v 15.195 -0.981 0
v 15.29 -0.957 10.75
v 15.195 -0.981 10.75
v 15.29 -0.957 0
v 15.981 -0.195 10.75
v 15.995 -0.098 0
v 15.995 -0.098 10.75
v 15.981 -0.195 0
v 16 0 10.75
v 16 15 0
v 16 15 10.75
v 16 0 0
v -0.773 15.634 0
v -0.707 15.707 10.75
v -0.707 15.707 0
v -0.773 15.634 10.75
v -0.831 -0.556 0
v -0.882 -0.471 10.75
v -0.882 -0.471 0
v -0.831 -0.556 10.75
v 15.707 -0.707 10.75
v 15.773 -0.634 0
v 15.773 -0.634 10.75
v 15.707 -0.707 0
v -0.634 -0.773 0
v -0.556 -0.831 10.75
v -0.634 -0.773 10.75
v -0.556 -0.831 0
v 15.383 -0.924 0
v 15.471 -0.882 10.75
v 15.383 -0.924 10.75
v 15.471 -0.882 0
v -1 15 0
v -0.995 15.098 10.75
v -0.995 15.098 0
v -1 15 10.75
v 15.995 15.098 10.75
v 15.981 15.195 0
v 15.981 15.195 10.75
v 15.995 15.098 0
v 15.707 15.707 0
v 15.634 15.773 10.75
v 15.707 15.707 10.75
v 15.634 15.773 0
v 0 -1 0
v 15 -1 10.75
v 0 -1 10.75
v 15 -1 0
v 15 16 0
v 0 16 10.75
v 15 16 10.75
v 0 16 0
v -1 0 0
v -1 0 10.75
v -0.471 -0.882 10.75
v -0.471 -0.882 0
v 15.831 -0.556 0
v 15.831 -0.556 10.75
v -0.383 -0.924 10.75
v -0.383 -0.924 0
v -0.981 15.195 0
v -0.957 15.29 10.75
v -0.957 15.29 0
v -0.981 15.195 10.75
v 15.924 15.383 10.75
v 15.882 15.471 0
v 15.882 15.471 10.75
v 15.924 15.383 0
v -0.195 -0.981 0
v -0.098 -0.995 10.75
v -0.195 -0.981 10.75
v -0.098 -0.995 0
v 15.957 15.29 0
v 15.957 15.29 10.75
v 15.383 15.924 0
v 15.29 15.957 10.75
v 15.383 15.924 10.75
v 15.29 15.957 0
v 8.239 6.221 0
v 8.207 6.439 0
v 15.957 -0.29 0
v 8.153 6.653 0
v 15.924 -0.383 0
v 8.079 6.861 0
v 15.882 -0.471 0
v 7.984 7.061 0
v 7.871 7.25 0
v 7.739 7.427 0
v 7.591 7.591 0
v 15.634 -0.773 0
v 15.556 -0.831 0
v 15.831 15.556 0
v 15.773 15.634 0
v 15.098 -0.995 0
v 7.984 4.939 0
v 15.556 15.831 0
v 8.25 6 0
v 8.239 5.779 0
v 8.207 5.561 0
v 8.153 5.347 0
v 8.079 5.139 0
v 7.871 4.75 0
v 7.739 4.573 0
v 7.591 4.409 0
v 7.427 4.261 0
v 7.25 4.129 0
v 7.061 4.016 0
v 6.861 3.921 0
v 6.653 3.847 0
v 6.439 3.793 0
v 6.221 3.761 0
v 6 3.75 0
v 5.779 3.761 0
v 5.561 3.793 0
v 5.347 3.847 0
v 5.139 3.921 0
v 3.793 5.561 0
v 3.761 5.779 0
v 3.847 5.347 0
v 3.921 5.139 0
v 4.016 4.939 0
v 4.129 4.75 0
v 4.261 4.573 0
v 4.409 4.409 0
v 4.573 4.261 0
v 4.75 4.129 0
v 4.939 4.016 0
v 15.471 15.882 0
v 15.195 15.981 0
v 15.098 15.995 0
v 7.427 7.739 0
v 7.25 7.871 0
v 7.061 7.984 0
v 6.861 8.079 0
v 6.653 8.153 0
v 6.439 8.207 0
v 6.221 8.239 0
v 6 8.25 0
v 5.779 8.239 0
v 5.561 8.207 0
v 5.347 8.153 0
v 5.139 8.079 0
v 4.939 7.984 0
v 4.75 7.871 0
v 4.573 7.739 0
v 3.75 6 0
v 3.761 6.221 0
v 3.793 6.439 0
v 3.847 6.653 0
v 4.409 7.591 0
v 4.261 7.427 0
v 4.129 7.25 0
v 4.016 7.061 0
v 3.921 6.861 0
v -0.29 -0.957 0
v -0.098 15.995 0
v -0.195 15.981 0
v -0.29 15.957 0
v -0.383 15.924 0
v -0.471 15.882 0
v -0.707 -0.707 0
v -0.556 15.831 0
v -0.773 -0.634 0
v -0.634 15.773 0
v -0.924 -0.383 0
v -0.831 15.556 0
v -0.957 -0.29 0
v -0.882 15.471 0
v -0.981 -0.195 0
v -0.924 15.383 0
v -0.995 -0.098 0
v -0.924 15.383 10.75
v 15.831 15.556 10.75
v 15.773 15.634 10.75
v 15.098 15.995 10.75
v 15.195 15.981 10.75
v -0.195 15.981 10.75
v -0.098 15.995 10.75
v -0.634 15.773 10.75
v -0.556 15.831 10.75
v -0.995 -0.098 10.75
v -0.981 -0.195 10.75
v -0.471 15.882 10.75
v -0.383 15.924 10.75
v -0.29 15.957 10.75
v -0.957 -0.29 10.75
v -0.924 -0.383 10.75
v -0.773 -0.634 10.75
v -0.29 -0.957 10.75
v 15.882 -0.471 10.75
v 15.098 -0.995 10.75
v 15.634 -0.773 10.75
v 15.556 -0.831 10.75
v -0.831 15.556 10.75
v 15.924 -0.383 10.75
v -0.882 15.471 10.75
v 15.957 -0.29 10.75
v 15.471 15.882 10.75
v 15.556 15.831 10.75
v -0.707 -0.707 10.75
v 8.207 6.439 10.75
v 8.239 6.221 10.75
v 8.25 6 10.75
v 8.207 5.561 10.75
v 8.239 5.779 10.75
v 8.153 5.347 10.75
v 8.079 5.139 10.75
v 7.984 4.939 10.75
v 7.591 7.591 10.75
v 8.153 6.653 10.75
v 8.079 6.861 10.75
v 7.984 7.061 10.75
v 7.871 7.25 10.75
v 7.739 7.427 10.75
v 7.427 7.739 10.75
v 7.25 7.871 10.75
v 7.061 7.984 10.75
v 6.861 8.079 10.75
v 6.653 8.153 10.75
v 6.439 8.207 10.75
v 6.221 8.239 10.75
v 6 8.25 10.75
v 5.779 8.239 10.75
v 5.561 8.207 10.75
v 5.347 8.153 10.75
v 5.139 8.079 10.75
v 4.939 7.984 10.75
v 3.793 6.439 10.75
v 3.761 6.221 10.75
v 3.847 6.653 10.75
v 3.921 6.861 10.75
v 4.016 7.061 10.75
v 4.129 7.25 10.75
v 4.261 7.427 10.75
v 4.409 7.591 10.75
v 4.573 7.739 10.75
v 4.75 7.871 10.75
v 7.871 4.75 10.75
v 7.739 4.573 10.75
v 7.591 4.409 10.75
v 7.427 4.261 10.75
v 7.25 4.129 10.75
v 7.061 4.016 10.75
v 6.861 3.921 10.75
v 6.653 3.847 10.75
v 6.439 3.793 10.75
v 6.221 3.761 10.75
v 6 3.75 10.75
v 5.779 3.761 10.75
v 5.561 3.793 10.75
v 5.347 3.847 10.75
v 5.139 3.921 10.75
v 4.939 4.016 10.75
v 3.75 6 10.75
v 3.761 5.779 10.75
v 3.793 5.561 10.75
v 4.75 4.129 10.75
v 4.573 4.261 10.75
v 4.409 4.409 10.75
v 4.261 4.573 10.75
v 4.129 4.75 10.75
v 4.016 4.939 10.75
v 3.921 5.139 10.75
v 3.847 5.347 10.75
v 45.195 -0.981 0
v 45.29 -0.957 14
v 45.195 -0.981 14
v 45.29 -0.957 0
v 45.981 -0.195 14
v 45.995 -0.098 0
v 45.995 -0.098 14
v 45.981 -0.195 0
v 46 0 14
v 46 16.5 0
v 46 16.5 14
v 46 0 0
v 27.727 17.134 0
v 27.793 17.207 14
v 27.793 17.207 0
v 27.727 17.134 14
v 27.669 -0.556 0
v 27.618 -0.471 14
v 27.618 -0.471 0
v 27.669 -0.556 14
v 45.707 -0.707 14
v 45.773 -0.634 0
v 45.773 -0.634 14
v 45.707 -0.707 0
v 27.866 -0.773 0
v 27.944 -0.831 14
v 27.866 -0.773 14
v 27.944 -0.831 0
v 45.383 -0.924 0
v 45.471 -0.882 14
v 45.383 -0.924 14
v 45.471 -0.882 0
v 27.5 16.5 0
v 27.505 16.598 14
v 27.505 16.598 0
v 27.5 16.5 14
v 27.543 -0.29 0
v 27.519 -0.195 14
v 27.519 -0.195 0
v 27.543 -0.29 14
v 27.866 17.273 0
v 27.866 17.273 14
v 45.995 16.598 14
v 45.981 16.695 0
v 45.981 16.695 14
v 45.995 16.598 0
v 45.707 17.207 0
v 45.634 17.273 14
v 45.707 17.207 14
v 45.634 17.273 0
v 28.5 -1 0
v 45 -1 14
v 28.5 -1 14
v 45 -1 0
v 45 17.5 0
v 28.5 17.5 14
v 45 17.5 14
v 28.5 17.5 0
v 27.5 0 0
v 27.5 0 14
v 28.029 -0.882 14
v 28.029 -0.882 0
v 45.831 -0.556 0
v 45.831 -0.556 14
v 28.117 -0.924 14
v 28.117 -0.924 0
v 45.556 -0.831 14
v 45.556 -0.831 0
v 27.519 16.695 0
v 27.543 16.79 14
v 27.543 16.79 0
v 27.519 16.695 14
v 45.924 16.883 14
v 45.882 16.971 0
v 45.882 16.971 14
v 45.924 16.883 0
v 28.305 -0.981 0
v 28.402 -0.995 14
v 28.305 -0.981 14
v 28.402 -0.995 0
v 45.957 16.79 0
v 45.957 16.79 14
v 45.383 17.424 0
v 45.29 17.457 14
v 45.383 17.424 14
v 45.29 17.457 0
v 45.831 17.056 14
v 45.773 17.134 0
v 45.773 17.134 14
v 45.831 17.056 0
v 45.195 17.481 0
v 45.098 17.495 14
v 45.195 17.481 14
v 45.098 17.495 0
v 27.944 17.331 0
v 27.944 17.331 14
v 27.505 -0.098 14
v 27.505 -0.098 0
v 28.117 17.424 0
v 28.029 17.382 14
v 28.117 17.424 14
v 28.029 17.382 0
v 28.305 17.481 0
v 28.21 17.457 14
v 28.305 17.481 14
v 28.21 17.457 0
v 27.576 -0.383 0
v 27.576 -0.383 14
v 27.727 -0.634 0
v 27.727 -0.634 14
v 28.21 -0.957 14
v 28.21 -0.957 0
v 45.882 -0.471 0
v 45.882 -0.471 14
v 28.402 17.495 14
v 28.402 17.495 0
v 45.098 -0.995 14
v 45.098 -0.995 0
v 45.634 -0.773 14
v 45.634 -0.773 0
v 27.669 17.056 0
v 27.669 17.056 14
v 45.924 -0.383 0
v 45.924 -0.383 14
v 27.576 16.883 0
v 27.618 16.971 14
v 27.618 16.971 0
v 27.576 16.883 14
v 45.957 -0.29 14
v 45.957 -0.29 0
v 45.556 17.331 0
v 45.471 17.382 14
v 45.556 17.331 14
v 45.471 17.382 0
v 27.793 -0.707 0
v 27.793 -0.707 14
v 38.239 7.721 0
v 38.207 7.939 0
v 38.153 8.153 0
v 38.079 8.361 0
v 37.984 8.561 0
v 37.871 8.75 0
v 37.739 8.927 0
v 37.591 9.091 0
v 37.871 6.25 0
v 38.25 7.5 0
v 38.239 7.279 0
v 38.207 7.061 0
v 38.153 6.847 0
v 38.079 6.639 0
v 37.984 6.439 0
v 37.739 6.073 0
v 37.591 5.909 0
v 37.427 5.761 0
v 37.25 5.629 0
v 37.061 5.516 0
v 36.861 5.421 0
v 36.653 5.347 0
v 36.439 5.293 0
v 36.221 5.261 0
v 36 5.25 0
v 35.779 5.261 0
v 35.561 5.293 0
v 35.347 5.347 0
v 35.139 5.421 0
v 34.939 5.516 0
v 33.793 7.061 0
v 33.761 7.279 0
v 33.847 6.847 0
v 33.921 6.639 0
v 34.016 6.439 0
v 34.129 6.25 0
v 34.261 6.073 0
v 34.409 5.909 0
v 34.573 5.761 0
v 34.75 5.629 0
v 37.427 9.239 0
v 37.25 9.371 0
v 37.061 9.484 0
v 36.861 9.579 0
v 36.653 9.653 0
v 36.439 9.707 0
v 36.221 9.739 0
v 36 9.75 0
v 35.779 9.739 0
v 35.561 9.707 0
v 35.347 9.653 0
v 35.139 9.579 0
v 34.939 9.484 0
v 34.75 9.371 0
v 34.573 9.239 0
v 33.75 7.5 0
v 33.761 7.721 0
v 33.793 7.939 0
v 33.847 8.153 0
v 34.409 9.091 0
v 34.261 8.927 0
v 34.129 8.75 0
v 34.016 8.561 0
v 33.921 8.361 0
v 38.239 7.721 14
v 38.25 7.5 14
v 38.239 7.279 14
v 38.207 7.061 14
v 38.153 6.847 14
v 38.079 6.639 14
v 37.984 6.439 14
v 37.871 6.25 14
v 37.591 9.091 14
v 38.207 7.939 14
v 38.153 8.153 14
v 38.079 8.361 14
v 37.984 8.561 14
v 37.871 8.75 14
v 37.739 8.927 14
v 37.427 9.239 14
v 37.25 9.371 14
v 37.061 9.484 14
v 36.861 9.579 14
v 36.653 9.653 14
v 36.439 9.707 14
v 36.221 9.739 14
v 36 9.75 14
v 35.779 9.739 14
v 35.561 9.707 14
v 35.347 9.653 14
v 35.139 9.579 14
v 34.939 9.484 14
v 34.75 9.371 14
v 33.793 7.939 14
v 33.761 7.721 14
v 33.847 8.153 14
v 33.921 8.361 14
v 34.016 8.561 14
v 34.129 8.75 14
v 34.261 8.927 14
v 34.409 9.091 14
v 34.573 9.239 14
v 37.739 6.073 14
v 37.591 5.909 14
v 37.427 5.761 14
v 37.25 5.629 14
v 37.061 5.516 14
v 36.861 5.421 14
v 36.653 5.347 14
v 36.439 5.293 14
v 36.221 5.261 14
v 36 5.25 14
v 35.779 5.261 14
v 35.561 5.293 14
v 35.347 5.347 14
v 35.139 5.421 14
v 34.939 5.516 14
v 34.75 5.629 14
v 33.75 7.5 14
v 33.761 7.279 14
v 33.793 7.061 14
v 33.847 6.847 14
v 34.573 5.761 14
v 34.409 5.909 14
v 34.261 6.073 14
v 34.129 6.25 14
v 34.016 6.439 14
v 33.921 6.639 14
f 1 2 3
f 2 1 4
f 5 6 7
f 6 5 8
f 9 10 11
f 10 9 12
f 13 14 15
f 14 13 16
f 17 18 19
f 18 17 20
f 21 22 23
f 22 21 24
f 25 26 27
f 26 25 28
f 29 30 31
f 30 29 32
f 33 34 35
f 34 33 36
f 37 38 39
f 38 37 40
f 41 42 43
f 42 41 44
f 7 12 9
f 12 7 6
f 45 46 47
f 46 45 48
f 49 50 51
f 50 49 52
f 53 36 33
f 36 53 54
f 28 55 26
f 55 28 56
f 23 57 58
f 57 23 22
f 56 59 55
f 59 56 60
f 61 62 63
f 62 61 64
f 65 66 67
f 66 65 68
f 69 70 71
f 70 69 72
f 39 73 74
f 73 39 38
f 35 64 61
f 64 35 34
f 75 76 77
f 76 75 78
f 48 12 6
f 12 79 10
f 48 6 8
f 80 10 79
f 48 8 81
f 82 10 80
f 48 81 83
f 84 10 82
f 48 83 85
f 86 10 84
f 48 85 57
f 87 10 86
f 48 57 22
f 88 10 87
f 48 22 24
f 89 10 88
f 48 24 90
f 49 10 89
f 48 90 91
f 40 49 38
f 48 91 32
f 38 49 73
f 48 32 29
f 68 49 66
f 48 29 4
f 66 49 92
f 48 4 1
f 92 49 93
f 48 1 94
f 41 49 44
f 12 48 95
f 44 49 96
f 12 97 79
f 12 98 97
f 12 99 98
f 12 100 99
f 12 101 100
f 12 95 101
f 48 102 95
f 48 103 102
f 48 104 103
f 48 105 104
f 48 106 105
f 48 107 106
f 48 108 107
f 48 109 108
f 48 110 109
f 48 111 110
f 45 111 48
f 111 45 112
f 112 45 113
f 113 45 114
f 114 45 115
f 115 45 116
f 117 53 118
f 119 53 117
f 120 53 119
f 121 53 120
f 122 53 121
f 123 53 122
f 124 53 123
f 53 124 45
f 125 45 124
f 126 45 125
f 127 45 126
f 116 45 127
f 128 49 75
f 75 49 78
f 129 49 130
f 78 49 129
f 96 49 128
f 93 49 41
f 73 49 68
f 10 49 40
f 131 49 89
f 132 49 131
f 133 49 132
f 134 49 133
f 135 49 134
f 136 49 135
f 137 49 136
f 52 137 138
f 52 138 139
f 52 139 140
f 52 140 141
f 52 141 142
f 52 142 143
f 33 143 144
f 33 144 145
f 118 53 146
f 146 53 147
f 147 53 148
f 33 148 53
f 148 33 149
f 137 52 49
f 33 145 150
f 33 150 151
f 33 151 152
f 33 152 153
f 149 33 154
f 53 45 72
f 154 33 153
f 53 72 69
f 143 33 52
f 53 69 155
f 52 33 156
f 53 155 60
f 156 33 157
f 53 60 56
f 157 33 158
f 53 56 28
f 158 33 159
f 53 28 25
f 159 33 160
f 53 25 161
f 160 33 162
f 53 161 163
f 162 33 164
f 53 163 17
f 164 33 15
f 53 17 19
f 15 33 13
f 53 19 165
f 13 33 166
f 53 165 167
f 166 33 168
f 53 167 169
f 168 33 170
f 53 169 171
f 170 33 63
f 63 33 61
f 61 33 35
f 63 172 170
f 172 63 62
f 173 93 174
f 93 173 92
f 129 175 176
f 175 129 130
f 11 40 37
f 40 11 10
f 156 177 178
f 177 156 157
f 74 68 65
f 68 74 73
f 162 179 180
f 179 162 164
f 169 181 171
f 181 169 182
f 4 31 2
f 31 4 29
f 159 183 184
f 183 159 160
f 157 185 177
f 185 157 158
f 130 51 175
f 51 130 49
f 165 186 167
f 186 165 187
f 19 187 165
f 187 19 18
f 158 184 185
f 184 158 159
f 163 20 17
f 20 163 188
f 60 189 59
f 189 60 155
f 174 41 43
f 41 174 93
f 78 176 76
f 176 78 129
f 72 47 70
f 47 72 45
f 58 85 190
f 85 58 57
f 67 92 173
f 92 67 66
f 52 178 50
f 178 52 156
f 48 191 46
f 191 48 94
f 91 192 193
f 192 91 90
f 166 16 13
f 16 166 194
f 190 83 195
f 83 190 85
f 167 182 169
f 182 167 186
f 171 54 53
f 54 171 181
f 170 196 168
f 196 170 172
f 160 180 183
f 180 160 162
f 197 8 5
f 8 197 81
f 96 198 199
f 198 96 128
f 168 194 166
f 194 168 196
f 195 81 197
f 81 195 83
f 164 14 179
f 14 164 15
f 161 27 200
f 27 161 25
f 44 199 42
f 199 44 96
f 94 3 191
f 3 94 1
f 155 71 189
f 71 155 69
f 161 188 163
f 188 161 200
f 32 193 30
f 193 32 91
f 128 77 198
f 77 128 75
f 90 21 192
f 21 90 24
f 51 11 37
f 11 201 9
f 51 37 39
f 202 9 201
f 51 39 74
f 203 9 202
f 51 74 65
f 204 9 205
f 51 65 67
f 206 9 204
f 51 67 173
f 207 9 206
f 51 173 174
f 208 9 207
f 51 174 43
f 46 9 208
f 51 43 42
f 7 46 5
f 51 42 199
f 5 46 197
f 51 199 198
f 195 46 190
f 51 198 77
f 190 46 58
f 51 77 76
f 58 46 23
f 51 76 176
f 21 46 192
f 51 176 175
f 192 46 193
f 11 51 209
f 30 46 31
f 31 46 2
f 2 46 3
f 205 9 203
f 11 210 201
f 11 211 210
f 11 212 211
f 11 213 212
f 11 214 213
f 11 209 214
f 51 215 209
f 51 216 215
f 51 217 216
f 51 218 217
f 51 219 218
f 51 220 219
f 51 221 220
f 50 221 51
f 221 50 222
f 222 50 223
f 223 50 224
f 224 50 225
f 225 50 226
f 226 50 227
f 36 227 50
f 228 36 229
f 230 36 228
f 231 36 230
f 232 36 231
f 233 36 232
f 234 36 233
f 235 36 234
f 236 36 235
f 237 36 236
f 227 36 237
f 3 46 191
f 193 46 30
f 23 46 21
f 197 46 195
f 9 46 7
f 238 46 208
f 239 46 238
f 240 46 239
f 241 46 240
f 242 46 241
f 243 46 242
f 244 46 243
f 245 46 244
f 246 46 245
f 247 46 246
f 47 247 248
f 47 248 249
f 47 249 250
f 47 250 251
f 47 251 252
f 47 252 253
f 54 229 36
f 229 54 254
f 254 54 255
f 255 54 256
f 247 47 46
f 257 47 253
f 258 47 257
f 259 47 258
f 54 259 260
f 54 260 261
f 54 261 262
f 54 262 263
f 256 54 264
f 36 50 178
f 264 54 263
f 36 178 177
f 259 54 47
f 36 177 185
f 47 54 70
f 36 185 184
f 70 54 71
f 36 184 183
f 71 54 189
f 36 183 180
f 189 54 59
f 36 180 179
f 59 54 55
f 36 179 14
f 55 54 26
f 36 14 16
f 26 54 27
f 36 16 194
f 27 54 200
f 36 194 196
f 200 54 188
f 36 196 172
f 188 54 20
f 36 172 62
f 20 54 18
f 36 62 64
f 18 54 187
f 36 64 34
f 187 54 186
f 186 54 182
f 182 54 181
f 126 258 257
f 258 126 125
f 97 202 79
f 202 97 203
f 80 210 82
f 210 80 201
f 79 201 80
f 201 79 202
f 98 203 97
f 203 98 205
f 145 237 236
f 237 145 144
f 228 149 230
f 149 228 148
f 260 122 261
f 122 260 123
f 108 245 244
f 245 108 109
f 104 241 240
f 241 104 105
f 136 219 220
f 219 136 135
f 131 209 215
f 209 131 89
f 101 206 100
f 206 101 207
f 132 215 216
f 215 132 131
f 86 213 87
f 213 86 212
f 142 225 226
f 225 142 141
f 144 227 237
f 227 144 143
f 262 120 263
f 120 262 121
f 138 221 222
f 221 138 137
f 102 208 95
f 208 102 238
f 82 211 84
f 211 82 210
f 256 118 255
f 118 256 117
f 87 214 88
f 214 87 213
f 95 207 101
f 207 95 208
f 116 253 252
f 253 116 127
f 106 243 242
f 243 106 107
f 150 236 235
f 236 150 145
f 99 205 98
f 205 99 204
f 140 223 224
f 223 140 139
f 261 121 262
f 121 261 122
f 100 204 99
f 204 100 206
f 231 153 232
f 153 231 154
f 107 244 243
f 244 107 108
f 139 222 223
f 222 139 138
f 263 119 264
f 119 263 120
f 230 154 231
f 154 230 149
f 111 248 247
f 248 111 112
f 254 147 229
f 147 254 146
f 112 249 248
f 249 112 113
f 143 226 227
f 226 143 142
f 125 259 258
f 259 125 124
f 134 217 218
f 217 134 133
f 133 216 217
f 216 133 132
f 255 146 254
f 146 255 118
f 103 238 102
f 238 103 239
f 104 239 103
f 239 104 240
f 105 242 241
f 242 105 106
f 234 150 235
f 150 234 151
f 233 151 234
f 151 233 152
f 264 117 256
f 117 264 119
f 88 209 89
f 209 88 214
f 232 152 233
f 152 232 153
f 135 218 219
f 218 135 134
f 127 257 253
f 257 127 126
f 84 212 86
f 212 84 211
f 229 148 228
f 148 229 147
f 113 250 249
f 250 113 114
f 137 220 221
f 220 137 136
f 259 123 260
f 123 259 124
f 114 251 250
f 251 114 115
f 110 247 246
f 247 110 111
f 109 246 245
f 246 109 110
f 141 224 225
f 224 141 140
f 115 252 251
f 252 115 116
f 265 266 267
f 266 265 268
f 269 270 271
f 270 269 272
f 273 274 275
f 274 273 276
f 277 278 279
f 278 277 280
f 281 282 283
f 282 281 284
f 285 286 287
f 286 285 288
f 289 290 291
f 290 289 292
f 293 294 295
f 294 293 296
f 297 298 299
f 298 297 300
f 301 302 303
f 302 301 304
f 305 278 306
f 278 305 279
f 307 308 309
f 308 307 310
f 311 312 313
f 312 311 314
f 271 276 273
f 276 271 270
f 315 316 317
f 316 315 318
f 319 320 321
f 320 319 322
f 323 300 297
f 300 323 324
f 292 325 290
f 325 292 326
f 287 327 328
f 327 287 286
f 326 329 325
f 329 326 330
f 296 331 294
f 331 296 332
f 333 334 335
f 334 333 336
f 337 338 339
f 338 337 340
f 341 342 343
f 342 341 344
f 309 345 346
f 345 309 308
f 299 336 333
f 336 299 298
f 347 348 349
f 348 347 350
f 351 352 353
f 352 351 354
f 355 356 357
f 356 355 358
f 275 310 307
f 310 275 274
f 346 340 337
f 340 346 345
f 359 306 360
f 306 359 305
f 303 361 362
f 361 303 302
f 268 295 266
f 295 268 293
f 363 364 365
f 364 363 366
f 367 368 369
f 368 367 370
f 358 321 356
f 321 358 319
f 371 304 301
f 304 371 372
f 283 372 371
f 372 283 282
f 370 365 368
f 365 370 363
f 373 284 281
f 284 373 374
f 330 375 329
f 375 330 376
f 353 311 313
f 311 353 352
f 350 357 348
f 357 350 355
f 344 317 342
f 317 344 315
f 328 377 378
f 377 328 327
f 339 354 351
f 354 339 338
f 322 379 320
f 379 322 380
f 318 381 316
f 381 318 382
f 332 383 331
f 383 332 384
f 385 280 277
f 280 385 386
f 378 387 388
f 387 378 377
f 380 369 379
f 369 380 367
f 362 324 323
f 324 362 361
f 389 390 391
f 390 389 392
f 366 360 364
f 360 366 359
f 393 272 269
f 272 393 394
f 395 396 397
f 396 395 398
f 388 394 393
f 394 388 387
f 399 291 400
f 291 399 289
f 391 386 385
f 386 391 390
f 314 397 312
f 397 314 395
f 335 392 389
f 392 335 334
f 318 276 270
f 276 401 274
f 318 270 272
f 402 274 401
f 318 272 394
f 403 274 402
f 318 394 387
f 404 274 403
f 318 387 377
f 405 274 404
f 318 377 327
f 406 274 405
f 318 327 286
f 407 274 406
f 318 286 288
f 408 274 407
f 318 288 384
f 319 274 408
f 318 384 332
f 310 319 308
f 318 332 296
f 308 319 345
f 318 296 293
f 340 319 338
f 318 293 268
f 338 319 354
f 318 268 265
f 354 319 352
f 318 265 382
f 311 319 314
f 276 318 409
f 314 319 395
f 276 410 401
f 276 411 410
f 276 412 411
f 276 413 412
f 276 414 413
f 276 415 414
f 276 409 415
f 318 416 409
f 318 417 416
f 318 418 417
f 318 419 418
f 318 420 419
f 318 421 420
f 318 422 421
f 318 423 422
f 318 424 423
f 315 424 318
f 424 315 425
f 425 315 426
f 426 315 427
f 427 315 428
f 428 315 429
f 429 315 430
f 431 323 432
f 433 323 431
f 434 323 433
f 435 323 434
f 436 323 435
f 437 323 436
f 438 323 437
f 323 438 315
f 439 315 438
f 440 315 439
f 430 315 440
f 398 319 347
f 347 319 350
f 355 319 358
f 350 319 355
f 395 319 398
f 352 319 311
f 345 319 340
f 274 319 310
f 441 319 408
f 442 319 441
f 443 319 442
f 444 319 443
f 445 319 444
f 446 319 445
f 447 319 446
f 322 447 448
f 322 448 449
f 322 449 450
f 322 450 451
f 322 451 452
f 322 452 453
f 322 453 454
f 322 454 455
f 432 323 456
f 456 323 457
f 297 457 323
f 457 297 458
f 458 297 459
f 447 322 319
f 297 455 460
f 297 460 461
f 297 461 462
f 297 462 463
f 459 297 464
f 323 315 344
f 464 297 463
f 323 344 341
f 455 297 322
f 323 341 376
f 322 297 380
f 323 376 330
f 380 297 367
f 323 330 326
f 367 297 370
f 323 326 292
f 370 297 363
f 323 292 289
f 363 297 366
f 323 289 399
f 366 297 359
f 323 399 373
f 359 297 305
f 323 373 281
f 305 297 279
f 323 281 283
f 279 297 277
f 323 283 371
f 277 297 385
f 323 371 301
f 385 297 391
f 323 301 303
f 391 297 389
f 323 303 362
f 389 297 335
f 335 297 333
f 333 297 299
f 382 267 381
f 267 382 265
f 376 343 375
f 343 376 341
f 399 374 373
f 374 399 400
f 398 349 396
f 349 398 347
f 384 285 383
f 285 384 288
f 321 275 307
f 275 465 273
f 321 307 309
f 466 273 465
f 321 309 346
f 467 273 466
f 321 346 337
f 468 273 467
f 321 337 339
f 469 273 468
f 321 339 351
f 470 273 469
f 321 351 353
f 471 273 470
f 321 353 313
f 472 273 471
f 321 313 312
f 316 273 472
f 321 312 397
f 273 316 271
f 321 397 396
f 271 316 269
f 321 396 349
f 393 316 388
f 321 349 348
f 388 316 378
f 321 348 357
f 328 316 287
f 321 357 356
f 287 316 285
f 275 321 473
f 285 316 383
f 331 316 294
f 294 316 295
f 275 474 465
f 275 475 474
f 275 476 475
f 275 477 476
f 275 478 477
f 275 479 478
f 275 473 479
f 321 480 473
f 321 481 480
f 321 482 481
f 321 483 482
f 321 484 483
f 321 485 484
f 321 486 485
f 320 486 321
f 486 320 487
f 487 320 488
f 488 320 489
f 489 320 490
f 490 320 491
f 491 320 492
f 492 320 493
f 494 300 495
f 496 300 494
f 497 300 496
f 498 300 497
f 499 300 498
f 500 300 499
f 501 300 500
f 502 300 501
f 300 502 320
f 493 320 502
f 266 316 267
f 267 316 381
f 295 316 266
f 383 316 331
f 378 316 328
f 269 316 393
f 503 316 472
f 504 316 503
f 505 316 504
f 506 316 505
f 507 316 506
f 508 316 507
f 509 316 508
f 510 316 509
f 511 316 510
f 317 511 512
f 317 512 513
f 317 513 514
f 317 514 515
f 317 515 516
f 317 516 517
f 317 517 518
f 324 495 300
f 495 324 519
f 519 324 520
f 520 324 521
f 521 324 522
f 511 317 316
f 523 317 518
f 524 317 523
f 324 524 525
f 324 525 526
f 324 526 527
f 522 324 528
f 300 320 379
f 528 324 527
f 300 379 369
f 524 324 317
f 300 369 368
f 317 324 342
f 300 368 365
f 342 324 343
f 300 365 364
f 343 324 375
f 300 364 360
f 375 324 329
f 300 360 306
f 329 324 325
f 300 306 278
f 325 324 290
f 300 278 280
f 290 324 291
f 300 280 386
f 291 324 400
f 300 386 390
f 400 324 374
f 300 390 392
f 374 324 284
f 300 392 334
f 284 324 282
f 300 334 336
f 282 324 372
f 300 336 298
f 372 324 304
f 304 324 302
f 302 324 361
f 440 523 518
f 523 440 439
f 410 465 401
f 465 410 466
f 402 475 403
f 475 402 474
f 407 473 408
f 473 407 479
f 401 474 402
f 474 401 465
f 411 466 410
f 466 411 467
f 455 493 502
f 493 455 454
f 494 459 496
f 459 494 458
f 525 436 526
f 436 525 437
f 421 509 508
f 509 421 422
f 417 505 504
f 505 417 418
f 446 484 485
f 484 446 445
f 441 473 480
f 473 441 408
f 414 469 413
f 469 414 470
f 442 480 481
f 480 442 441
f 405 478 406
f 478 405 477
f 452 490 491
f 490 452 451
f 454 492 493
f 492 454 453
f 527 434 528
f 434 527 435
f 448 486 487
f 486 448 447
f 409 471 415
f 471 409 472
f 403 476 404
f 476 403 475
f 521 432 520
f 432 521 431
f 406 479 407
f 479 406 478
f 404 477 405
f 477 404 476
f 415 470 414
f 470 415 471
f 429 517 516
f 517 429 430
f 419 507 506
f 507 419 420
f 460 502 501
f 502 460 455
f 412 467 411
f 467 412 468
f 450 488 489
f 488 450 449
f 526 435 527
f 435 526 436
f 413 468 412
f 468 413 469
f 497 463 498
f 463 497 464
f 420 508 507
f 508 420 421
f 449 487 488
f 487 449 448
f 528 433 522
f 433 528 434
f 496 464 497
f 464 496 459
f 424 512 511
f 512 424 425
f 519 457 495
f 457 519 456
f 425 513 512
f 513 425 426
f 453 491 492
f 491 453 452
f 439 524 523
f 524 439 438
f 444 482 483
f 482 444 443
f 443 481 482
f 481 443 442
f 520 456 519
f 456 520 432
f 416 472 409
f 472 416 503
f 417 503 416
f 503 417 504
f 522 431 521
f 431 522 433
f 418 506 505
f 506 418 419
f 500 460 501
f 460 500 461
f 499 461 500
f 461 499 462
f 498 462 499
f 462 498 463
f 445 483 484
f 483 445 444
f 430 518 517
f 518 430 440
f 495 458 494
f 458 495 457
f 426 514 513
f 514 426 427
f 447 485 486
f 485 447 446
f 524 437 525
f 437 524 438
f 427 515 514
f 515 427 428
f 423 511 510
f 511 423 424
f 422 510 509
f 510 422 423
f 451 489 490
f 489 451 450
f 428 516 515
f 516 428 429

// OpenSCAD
// Simple blocks with a hole to space cleat on Dell S2725QC, OpenSCAD (units: mm)

// ----- Parameters you can tweak -----
corner_radius = 1.0;   // "slightly rounded corners" — adjust if you like
hole_d        = 4.5;   // hole diameter
edge_offset   = 11.0;  // distance of hole center from right/top edges

// Part specs
size1   = 17.0;   height1 = 10.75; // Part 1
size2   = 18.5;   height2 = 14.0;  // Part 2

$fn = 64; // smoothness for circles/cylinders

// ----- Helper: rounded square that ends up exactly 'size' × 'size' -----
module rounded_square(size, r=1.0) {
    // Build a size×size rounded rectangle by minkowski-expanding a smaller square
    // with a circle of radius r. The inner square is (size-2r).
    minkowski() {
        square(size - 2*r, center=false);
        circle(r=r);
    }
}

// ----- Helper: block with through-hole at (right/top) offsets -----
module block_with_hole(size, height, r, hole_dia, offset_rt) {
    difference() {
        // Main body
        linear_extrude(height)
            rounded_square(size, r);

        // Through-hole: 11 mm from right and 11 mm from top edges
        translate([size - offset_rt, size - offset_rt, -1])
            cylinder(h = height + 2, d = hole_dia);  // overshoot Z so it's definitely through
    }
}

// ----- Individual parts -----
module part1() block_with_hole(size1, height1, corner_radius, hole_d, edge_offset);
module part2() block_with_hole(size2, height2, corner_radius, hole_d, edge_offset);

// ----- Preview both (side-by-side). Comment one out to export STLs separately. -----
translate([0, 0, 0])      part1();
translate([max(size1,size2) + 10, 0, 0]) part2();

// To export:
// 1) Comment out the other part so only one remains visible.
// 2) Design -> Export -> Export as STL.
